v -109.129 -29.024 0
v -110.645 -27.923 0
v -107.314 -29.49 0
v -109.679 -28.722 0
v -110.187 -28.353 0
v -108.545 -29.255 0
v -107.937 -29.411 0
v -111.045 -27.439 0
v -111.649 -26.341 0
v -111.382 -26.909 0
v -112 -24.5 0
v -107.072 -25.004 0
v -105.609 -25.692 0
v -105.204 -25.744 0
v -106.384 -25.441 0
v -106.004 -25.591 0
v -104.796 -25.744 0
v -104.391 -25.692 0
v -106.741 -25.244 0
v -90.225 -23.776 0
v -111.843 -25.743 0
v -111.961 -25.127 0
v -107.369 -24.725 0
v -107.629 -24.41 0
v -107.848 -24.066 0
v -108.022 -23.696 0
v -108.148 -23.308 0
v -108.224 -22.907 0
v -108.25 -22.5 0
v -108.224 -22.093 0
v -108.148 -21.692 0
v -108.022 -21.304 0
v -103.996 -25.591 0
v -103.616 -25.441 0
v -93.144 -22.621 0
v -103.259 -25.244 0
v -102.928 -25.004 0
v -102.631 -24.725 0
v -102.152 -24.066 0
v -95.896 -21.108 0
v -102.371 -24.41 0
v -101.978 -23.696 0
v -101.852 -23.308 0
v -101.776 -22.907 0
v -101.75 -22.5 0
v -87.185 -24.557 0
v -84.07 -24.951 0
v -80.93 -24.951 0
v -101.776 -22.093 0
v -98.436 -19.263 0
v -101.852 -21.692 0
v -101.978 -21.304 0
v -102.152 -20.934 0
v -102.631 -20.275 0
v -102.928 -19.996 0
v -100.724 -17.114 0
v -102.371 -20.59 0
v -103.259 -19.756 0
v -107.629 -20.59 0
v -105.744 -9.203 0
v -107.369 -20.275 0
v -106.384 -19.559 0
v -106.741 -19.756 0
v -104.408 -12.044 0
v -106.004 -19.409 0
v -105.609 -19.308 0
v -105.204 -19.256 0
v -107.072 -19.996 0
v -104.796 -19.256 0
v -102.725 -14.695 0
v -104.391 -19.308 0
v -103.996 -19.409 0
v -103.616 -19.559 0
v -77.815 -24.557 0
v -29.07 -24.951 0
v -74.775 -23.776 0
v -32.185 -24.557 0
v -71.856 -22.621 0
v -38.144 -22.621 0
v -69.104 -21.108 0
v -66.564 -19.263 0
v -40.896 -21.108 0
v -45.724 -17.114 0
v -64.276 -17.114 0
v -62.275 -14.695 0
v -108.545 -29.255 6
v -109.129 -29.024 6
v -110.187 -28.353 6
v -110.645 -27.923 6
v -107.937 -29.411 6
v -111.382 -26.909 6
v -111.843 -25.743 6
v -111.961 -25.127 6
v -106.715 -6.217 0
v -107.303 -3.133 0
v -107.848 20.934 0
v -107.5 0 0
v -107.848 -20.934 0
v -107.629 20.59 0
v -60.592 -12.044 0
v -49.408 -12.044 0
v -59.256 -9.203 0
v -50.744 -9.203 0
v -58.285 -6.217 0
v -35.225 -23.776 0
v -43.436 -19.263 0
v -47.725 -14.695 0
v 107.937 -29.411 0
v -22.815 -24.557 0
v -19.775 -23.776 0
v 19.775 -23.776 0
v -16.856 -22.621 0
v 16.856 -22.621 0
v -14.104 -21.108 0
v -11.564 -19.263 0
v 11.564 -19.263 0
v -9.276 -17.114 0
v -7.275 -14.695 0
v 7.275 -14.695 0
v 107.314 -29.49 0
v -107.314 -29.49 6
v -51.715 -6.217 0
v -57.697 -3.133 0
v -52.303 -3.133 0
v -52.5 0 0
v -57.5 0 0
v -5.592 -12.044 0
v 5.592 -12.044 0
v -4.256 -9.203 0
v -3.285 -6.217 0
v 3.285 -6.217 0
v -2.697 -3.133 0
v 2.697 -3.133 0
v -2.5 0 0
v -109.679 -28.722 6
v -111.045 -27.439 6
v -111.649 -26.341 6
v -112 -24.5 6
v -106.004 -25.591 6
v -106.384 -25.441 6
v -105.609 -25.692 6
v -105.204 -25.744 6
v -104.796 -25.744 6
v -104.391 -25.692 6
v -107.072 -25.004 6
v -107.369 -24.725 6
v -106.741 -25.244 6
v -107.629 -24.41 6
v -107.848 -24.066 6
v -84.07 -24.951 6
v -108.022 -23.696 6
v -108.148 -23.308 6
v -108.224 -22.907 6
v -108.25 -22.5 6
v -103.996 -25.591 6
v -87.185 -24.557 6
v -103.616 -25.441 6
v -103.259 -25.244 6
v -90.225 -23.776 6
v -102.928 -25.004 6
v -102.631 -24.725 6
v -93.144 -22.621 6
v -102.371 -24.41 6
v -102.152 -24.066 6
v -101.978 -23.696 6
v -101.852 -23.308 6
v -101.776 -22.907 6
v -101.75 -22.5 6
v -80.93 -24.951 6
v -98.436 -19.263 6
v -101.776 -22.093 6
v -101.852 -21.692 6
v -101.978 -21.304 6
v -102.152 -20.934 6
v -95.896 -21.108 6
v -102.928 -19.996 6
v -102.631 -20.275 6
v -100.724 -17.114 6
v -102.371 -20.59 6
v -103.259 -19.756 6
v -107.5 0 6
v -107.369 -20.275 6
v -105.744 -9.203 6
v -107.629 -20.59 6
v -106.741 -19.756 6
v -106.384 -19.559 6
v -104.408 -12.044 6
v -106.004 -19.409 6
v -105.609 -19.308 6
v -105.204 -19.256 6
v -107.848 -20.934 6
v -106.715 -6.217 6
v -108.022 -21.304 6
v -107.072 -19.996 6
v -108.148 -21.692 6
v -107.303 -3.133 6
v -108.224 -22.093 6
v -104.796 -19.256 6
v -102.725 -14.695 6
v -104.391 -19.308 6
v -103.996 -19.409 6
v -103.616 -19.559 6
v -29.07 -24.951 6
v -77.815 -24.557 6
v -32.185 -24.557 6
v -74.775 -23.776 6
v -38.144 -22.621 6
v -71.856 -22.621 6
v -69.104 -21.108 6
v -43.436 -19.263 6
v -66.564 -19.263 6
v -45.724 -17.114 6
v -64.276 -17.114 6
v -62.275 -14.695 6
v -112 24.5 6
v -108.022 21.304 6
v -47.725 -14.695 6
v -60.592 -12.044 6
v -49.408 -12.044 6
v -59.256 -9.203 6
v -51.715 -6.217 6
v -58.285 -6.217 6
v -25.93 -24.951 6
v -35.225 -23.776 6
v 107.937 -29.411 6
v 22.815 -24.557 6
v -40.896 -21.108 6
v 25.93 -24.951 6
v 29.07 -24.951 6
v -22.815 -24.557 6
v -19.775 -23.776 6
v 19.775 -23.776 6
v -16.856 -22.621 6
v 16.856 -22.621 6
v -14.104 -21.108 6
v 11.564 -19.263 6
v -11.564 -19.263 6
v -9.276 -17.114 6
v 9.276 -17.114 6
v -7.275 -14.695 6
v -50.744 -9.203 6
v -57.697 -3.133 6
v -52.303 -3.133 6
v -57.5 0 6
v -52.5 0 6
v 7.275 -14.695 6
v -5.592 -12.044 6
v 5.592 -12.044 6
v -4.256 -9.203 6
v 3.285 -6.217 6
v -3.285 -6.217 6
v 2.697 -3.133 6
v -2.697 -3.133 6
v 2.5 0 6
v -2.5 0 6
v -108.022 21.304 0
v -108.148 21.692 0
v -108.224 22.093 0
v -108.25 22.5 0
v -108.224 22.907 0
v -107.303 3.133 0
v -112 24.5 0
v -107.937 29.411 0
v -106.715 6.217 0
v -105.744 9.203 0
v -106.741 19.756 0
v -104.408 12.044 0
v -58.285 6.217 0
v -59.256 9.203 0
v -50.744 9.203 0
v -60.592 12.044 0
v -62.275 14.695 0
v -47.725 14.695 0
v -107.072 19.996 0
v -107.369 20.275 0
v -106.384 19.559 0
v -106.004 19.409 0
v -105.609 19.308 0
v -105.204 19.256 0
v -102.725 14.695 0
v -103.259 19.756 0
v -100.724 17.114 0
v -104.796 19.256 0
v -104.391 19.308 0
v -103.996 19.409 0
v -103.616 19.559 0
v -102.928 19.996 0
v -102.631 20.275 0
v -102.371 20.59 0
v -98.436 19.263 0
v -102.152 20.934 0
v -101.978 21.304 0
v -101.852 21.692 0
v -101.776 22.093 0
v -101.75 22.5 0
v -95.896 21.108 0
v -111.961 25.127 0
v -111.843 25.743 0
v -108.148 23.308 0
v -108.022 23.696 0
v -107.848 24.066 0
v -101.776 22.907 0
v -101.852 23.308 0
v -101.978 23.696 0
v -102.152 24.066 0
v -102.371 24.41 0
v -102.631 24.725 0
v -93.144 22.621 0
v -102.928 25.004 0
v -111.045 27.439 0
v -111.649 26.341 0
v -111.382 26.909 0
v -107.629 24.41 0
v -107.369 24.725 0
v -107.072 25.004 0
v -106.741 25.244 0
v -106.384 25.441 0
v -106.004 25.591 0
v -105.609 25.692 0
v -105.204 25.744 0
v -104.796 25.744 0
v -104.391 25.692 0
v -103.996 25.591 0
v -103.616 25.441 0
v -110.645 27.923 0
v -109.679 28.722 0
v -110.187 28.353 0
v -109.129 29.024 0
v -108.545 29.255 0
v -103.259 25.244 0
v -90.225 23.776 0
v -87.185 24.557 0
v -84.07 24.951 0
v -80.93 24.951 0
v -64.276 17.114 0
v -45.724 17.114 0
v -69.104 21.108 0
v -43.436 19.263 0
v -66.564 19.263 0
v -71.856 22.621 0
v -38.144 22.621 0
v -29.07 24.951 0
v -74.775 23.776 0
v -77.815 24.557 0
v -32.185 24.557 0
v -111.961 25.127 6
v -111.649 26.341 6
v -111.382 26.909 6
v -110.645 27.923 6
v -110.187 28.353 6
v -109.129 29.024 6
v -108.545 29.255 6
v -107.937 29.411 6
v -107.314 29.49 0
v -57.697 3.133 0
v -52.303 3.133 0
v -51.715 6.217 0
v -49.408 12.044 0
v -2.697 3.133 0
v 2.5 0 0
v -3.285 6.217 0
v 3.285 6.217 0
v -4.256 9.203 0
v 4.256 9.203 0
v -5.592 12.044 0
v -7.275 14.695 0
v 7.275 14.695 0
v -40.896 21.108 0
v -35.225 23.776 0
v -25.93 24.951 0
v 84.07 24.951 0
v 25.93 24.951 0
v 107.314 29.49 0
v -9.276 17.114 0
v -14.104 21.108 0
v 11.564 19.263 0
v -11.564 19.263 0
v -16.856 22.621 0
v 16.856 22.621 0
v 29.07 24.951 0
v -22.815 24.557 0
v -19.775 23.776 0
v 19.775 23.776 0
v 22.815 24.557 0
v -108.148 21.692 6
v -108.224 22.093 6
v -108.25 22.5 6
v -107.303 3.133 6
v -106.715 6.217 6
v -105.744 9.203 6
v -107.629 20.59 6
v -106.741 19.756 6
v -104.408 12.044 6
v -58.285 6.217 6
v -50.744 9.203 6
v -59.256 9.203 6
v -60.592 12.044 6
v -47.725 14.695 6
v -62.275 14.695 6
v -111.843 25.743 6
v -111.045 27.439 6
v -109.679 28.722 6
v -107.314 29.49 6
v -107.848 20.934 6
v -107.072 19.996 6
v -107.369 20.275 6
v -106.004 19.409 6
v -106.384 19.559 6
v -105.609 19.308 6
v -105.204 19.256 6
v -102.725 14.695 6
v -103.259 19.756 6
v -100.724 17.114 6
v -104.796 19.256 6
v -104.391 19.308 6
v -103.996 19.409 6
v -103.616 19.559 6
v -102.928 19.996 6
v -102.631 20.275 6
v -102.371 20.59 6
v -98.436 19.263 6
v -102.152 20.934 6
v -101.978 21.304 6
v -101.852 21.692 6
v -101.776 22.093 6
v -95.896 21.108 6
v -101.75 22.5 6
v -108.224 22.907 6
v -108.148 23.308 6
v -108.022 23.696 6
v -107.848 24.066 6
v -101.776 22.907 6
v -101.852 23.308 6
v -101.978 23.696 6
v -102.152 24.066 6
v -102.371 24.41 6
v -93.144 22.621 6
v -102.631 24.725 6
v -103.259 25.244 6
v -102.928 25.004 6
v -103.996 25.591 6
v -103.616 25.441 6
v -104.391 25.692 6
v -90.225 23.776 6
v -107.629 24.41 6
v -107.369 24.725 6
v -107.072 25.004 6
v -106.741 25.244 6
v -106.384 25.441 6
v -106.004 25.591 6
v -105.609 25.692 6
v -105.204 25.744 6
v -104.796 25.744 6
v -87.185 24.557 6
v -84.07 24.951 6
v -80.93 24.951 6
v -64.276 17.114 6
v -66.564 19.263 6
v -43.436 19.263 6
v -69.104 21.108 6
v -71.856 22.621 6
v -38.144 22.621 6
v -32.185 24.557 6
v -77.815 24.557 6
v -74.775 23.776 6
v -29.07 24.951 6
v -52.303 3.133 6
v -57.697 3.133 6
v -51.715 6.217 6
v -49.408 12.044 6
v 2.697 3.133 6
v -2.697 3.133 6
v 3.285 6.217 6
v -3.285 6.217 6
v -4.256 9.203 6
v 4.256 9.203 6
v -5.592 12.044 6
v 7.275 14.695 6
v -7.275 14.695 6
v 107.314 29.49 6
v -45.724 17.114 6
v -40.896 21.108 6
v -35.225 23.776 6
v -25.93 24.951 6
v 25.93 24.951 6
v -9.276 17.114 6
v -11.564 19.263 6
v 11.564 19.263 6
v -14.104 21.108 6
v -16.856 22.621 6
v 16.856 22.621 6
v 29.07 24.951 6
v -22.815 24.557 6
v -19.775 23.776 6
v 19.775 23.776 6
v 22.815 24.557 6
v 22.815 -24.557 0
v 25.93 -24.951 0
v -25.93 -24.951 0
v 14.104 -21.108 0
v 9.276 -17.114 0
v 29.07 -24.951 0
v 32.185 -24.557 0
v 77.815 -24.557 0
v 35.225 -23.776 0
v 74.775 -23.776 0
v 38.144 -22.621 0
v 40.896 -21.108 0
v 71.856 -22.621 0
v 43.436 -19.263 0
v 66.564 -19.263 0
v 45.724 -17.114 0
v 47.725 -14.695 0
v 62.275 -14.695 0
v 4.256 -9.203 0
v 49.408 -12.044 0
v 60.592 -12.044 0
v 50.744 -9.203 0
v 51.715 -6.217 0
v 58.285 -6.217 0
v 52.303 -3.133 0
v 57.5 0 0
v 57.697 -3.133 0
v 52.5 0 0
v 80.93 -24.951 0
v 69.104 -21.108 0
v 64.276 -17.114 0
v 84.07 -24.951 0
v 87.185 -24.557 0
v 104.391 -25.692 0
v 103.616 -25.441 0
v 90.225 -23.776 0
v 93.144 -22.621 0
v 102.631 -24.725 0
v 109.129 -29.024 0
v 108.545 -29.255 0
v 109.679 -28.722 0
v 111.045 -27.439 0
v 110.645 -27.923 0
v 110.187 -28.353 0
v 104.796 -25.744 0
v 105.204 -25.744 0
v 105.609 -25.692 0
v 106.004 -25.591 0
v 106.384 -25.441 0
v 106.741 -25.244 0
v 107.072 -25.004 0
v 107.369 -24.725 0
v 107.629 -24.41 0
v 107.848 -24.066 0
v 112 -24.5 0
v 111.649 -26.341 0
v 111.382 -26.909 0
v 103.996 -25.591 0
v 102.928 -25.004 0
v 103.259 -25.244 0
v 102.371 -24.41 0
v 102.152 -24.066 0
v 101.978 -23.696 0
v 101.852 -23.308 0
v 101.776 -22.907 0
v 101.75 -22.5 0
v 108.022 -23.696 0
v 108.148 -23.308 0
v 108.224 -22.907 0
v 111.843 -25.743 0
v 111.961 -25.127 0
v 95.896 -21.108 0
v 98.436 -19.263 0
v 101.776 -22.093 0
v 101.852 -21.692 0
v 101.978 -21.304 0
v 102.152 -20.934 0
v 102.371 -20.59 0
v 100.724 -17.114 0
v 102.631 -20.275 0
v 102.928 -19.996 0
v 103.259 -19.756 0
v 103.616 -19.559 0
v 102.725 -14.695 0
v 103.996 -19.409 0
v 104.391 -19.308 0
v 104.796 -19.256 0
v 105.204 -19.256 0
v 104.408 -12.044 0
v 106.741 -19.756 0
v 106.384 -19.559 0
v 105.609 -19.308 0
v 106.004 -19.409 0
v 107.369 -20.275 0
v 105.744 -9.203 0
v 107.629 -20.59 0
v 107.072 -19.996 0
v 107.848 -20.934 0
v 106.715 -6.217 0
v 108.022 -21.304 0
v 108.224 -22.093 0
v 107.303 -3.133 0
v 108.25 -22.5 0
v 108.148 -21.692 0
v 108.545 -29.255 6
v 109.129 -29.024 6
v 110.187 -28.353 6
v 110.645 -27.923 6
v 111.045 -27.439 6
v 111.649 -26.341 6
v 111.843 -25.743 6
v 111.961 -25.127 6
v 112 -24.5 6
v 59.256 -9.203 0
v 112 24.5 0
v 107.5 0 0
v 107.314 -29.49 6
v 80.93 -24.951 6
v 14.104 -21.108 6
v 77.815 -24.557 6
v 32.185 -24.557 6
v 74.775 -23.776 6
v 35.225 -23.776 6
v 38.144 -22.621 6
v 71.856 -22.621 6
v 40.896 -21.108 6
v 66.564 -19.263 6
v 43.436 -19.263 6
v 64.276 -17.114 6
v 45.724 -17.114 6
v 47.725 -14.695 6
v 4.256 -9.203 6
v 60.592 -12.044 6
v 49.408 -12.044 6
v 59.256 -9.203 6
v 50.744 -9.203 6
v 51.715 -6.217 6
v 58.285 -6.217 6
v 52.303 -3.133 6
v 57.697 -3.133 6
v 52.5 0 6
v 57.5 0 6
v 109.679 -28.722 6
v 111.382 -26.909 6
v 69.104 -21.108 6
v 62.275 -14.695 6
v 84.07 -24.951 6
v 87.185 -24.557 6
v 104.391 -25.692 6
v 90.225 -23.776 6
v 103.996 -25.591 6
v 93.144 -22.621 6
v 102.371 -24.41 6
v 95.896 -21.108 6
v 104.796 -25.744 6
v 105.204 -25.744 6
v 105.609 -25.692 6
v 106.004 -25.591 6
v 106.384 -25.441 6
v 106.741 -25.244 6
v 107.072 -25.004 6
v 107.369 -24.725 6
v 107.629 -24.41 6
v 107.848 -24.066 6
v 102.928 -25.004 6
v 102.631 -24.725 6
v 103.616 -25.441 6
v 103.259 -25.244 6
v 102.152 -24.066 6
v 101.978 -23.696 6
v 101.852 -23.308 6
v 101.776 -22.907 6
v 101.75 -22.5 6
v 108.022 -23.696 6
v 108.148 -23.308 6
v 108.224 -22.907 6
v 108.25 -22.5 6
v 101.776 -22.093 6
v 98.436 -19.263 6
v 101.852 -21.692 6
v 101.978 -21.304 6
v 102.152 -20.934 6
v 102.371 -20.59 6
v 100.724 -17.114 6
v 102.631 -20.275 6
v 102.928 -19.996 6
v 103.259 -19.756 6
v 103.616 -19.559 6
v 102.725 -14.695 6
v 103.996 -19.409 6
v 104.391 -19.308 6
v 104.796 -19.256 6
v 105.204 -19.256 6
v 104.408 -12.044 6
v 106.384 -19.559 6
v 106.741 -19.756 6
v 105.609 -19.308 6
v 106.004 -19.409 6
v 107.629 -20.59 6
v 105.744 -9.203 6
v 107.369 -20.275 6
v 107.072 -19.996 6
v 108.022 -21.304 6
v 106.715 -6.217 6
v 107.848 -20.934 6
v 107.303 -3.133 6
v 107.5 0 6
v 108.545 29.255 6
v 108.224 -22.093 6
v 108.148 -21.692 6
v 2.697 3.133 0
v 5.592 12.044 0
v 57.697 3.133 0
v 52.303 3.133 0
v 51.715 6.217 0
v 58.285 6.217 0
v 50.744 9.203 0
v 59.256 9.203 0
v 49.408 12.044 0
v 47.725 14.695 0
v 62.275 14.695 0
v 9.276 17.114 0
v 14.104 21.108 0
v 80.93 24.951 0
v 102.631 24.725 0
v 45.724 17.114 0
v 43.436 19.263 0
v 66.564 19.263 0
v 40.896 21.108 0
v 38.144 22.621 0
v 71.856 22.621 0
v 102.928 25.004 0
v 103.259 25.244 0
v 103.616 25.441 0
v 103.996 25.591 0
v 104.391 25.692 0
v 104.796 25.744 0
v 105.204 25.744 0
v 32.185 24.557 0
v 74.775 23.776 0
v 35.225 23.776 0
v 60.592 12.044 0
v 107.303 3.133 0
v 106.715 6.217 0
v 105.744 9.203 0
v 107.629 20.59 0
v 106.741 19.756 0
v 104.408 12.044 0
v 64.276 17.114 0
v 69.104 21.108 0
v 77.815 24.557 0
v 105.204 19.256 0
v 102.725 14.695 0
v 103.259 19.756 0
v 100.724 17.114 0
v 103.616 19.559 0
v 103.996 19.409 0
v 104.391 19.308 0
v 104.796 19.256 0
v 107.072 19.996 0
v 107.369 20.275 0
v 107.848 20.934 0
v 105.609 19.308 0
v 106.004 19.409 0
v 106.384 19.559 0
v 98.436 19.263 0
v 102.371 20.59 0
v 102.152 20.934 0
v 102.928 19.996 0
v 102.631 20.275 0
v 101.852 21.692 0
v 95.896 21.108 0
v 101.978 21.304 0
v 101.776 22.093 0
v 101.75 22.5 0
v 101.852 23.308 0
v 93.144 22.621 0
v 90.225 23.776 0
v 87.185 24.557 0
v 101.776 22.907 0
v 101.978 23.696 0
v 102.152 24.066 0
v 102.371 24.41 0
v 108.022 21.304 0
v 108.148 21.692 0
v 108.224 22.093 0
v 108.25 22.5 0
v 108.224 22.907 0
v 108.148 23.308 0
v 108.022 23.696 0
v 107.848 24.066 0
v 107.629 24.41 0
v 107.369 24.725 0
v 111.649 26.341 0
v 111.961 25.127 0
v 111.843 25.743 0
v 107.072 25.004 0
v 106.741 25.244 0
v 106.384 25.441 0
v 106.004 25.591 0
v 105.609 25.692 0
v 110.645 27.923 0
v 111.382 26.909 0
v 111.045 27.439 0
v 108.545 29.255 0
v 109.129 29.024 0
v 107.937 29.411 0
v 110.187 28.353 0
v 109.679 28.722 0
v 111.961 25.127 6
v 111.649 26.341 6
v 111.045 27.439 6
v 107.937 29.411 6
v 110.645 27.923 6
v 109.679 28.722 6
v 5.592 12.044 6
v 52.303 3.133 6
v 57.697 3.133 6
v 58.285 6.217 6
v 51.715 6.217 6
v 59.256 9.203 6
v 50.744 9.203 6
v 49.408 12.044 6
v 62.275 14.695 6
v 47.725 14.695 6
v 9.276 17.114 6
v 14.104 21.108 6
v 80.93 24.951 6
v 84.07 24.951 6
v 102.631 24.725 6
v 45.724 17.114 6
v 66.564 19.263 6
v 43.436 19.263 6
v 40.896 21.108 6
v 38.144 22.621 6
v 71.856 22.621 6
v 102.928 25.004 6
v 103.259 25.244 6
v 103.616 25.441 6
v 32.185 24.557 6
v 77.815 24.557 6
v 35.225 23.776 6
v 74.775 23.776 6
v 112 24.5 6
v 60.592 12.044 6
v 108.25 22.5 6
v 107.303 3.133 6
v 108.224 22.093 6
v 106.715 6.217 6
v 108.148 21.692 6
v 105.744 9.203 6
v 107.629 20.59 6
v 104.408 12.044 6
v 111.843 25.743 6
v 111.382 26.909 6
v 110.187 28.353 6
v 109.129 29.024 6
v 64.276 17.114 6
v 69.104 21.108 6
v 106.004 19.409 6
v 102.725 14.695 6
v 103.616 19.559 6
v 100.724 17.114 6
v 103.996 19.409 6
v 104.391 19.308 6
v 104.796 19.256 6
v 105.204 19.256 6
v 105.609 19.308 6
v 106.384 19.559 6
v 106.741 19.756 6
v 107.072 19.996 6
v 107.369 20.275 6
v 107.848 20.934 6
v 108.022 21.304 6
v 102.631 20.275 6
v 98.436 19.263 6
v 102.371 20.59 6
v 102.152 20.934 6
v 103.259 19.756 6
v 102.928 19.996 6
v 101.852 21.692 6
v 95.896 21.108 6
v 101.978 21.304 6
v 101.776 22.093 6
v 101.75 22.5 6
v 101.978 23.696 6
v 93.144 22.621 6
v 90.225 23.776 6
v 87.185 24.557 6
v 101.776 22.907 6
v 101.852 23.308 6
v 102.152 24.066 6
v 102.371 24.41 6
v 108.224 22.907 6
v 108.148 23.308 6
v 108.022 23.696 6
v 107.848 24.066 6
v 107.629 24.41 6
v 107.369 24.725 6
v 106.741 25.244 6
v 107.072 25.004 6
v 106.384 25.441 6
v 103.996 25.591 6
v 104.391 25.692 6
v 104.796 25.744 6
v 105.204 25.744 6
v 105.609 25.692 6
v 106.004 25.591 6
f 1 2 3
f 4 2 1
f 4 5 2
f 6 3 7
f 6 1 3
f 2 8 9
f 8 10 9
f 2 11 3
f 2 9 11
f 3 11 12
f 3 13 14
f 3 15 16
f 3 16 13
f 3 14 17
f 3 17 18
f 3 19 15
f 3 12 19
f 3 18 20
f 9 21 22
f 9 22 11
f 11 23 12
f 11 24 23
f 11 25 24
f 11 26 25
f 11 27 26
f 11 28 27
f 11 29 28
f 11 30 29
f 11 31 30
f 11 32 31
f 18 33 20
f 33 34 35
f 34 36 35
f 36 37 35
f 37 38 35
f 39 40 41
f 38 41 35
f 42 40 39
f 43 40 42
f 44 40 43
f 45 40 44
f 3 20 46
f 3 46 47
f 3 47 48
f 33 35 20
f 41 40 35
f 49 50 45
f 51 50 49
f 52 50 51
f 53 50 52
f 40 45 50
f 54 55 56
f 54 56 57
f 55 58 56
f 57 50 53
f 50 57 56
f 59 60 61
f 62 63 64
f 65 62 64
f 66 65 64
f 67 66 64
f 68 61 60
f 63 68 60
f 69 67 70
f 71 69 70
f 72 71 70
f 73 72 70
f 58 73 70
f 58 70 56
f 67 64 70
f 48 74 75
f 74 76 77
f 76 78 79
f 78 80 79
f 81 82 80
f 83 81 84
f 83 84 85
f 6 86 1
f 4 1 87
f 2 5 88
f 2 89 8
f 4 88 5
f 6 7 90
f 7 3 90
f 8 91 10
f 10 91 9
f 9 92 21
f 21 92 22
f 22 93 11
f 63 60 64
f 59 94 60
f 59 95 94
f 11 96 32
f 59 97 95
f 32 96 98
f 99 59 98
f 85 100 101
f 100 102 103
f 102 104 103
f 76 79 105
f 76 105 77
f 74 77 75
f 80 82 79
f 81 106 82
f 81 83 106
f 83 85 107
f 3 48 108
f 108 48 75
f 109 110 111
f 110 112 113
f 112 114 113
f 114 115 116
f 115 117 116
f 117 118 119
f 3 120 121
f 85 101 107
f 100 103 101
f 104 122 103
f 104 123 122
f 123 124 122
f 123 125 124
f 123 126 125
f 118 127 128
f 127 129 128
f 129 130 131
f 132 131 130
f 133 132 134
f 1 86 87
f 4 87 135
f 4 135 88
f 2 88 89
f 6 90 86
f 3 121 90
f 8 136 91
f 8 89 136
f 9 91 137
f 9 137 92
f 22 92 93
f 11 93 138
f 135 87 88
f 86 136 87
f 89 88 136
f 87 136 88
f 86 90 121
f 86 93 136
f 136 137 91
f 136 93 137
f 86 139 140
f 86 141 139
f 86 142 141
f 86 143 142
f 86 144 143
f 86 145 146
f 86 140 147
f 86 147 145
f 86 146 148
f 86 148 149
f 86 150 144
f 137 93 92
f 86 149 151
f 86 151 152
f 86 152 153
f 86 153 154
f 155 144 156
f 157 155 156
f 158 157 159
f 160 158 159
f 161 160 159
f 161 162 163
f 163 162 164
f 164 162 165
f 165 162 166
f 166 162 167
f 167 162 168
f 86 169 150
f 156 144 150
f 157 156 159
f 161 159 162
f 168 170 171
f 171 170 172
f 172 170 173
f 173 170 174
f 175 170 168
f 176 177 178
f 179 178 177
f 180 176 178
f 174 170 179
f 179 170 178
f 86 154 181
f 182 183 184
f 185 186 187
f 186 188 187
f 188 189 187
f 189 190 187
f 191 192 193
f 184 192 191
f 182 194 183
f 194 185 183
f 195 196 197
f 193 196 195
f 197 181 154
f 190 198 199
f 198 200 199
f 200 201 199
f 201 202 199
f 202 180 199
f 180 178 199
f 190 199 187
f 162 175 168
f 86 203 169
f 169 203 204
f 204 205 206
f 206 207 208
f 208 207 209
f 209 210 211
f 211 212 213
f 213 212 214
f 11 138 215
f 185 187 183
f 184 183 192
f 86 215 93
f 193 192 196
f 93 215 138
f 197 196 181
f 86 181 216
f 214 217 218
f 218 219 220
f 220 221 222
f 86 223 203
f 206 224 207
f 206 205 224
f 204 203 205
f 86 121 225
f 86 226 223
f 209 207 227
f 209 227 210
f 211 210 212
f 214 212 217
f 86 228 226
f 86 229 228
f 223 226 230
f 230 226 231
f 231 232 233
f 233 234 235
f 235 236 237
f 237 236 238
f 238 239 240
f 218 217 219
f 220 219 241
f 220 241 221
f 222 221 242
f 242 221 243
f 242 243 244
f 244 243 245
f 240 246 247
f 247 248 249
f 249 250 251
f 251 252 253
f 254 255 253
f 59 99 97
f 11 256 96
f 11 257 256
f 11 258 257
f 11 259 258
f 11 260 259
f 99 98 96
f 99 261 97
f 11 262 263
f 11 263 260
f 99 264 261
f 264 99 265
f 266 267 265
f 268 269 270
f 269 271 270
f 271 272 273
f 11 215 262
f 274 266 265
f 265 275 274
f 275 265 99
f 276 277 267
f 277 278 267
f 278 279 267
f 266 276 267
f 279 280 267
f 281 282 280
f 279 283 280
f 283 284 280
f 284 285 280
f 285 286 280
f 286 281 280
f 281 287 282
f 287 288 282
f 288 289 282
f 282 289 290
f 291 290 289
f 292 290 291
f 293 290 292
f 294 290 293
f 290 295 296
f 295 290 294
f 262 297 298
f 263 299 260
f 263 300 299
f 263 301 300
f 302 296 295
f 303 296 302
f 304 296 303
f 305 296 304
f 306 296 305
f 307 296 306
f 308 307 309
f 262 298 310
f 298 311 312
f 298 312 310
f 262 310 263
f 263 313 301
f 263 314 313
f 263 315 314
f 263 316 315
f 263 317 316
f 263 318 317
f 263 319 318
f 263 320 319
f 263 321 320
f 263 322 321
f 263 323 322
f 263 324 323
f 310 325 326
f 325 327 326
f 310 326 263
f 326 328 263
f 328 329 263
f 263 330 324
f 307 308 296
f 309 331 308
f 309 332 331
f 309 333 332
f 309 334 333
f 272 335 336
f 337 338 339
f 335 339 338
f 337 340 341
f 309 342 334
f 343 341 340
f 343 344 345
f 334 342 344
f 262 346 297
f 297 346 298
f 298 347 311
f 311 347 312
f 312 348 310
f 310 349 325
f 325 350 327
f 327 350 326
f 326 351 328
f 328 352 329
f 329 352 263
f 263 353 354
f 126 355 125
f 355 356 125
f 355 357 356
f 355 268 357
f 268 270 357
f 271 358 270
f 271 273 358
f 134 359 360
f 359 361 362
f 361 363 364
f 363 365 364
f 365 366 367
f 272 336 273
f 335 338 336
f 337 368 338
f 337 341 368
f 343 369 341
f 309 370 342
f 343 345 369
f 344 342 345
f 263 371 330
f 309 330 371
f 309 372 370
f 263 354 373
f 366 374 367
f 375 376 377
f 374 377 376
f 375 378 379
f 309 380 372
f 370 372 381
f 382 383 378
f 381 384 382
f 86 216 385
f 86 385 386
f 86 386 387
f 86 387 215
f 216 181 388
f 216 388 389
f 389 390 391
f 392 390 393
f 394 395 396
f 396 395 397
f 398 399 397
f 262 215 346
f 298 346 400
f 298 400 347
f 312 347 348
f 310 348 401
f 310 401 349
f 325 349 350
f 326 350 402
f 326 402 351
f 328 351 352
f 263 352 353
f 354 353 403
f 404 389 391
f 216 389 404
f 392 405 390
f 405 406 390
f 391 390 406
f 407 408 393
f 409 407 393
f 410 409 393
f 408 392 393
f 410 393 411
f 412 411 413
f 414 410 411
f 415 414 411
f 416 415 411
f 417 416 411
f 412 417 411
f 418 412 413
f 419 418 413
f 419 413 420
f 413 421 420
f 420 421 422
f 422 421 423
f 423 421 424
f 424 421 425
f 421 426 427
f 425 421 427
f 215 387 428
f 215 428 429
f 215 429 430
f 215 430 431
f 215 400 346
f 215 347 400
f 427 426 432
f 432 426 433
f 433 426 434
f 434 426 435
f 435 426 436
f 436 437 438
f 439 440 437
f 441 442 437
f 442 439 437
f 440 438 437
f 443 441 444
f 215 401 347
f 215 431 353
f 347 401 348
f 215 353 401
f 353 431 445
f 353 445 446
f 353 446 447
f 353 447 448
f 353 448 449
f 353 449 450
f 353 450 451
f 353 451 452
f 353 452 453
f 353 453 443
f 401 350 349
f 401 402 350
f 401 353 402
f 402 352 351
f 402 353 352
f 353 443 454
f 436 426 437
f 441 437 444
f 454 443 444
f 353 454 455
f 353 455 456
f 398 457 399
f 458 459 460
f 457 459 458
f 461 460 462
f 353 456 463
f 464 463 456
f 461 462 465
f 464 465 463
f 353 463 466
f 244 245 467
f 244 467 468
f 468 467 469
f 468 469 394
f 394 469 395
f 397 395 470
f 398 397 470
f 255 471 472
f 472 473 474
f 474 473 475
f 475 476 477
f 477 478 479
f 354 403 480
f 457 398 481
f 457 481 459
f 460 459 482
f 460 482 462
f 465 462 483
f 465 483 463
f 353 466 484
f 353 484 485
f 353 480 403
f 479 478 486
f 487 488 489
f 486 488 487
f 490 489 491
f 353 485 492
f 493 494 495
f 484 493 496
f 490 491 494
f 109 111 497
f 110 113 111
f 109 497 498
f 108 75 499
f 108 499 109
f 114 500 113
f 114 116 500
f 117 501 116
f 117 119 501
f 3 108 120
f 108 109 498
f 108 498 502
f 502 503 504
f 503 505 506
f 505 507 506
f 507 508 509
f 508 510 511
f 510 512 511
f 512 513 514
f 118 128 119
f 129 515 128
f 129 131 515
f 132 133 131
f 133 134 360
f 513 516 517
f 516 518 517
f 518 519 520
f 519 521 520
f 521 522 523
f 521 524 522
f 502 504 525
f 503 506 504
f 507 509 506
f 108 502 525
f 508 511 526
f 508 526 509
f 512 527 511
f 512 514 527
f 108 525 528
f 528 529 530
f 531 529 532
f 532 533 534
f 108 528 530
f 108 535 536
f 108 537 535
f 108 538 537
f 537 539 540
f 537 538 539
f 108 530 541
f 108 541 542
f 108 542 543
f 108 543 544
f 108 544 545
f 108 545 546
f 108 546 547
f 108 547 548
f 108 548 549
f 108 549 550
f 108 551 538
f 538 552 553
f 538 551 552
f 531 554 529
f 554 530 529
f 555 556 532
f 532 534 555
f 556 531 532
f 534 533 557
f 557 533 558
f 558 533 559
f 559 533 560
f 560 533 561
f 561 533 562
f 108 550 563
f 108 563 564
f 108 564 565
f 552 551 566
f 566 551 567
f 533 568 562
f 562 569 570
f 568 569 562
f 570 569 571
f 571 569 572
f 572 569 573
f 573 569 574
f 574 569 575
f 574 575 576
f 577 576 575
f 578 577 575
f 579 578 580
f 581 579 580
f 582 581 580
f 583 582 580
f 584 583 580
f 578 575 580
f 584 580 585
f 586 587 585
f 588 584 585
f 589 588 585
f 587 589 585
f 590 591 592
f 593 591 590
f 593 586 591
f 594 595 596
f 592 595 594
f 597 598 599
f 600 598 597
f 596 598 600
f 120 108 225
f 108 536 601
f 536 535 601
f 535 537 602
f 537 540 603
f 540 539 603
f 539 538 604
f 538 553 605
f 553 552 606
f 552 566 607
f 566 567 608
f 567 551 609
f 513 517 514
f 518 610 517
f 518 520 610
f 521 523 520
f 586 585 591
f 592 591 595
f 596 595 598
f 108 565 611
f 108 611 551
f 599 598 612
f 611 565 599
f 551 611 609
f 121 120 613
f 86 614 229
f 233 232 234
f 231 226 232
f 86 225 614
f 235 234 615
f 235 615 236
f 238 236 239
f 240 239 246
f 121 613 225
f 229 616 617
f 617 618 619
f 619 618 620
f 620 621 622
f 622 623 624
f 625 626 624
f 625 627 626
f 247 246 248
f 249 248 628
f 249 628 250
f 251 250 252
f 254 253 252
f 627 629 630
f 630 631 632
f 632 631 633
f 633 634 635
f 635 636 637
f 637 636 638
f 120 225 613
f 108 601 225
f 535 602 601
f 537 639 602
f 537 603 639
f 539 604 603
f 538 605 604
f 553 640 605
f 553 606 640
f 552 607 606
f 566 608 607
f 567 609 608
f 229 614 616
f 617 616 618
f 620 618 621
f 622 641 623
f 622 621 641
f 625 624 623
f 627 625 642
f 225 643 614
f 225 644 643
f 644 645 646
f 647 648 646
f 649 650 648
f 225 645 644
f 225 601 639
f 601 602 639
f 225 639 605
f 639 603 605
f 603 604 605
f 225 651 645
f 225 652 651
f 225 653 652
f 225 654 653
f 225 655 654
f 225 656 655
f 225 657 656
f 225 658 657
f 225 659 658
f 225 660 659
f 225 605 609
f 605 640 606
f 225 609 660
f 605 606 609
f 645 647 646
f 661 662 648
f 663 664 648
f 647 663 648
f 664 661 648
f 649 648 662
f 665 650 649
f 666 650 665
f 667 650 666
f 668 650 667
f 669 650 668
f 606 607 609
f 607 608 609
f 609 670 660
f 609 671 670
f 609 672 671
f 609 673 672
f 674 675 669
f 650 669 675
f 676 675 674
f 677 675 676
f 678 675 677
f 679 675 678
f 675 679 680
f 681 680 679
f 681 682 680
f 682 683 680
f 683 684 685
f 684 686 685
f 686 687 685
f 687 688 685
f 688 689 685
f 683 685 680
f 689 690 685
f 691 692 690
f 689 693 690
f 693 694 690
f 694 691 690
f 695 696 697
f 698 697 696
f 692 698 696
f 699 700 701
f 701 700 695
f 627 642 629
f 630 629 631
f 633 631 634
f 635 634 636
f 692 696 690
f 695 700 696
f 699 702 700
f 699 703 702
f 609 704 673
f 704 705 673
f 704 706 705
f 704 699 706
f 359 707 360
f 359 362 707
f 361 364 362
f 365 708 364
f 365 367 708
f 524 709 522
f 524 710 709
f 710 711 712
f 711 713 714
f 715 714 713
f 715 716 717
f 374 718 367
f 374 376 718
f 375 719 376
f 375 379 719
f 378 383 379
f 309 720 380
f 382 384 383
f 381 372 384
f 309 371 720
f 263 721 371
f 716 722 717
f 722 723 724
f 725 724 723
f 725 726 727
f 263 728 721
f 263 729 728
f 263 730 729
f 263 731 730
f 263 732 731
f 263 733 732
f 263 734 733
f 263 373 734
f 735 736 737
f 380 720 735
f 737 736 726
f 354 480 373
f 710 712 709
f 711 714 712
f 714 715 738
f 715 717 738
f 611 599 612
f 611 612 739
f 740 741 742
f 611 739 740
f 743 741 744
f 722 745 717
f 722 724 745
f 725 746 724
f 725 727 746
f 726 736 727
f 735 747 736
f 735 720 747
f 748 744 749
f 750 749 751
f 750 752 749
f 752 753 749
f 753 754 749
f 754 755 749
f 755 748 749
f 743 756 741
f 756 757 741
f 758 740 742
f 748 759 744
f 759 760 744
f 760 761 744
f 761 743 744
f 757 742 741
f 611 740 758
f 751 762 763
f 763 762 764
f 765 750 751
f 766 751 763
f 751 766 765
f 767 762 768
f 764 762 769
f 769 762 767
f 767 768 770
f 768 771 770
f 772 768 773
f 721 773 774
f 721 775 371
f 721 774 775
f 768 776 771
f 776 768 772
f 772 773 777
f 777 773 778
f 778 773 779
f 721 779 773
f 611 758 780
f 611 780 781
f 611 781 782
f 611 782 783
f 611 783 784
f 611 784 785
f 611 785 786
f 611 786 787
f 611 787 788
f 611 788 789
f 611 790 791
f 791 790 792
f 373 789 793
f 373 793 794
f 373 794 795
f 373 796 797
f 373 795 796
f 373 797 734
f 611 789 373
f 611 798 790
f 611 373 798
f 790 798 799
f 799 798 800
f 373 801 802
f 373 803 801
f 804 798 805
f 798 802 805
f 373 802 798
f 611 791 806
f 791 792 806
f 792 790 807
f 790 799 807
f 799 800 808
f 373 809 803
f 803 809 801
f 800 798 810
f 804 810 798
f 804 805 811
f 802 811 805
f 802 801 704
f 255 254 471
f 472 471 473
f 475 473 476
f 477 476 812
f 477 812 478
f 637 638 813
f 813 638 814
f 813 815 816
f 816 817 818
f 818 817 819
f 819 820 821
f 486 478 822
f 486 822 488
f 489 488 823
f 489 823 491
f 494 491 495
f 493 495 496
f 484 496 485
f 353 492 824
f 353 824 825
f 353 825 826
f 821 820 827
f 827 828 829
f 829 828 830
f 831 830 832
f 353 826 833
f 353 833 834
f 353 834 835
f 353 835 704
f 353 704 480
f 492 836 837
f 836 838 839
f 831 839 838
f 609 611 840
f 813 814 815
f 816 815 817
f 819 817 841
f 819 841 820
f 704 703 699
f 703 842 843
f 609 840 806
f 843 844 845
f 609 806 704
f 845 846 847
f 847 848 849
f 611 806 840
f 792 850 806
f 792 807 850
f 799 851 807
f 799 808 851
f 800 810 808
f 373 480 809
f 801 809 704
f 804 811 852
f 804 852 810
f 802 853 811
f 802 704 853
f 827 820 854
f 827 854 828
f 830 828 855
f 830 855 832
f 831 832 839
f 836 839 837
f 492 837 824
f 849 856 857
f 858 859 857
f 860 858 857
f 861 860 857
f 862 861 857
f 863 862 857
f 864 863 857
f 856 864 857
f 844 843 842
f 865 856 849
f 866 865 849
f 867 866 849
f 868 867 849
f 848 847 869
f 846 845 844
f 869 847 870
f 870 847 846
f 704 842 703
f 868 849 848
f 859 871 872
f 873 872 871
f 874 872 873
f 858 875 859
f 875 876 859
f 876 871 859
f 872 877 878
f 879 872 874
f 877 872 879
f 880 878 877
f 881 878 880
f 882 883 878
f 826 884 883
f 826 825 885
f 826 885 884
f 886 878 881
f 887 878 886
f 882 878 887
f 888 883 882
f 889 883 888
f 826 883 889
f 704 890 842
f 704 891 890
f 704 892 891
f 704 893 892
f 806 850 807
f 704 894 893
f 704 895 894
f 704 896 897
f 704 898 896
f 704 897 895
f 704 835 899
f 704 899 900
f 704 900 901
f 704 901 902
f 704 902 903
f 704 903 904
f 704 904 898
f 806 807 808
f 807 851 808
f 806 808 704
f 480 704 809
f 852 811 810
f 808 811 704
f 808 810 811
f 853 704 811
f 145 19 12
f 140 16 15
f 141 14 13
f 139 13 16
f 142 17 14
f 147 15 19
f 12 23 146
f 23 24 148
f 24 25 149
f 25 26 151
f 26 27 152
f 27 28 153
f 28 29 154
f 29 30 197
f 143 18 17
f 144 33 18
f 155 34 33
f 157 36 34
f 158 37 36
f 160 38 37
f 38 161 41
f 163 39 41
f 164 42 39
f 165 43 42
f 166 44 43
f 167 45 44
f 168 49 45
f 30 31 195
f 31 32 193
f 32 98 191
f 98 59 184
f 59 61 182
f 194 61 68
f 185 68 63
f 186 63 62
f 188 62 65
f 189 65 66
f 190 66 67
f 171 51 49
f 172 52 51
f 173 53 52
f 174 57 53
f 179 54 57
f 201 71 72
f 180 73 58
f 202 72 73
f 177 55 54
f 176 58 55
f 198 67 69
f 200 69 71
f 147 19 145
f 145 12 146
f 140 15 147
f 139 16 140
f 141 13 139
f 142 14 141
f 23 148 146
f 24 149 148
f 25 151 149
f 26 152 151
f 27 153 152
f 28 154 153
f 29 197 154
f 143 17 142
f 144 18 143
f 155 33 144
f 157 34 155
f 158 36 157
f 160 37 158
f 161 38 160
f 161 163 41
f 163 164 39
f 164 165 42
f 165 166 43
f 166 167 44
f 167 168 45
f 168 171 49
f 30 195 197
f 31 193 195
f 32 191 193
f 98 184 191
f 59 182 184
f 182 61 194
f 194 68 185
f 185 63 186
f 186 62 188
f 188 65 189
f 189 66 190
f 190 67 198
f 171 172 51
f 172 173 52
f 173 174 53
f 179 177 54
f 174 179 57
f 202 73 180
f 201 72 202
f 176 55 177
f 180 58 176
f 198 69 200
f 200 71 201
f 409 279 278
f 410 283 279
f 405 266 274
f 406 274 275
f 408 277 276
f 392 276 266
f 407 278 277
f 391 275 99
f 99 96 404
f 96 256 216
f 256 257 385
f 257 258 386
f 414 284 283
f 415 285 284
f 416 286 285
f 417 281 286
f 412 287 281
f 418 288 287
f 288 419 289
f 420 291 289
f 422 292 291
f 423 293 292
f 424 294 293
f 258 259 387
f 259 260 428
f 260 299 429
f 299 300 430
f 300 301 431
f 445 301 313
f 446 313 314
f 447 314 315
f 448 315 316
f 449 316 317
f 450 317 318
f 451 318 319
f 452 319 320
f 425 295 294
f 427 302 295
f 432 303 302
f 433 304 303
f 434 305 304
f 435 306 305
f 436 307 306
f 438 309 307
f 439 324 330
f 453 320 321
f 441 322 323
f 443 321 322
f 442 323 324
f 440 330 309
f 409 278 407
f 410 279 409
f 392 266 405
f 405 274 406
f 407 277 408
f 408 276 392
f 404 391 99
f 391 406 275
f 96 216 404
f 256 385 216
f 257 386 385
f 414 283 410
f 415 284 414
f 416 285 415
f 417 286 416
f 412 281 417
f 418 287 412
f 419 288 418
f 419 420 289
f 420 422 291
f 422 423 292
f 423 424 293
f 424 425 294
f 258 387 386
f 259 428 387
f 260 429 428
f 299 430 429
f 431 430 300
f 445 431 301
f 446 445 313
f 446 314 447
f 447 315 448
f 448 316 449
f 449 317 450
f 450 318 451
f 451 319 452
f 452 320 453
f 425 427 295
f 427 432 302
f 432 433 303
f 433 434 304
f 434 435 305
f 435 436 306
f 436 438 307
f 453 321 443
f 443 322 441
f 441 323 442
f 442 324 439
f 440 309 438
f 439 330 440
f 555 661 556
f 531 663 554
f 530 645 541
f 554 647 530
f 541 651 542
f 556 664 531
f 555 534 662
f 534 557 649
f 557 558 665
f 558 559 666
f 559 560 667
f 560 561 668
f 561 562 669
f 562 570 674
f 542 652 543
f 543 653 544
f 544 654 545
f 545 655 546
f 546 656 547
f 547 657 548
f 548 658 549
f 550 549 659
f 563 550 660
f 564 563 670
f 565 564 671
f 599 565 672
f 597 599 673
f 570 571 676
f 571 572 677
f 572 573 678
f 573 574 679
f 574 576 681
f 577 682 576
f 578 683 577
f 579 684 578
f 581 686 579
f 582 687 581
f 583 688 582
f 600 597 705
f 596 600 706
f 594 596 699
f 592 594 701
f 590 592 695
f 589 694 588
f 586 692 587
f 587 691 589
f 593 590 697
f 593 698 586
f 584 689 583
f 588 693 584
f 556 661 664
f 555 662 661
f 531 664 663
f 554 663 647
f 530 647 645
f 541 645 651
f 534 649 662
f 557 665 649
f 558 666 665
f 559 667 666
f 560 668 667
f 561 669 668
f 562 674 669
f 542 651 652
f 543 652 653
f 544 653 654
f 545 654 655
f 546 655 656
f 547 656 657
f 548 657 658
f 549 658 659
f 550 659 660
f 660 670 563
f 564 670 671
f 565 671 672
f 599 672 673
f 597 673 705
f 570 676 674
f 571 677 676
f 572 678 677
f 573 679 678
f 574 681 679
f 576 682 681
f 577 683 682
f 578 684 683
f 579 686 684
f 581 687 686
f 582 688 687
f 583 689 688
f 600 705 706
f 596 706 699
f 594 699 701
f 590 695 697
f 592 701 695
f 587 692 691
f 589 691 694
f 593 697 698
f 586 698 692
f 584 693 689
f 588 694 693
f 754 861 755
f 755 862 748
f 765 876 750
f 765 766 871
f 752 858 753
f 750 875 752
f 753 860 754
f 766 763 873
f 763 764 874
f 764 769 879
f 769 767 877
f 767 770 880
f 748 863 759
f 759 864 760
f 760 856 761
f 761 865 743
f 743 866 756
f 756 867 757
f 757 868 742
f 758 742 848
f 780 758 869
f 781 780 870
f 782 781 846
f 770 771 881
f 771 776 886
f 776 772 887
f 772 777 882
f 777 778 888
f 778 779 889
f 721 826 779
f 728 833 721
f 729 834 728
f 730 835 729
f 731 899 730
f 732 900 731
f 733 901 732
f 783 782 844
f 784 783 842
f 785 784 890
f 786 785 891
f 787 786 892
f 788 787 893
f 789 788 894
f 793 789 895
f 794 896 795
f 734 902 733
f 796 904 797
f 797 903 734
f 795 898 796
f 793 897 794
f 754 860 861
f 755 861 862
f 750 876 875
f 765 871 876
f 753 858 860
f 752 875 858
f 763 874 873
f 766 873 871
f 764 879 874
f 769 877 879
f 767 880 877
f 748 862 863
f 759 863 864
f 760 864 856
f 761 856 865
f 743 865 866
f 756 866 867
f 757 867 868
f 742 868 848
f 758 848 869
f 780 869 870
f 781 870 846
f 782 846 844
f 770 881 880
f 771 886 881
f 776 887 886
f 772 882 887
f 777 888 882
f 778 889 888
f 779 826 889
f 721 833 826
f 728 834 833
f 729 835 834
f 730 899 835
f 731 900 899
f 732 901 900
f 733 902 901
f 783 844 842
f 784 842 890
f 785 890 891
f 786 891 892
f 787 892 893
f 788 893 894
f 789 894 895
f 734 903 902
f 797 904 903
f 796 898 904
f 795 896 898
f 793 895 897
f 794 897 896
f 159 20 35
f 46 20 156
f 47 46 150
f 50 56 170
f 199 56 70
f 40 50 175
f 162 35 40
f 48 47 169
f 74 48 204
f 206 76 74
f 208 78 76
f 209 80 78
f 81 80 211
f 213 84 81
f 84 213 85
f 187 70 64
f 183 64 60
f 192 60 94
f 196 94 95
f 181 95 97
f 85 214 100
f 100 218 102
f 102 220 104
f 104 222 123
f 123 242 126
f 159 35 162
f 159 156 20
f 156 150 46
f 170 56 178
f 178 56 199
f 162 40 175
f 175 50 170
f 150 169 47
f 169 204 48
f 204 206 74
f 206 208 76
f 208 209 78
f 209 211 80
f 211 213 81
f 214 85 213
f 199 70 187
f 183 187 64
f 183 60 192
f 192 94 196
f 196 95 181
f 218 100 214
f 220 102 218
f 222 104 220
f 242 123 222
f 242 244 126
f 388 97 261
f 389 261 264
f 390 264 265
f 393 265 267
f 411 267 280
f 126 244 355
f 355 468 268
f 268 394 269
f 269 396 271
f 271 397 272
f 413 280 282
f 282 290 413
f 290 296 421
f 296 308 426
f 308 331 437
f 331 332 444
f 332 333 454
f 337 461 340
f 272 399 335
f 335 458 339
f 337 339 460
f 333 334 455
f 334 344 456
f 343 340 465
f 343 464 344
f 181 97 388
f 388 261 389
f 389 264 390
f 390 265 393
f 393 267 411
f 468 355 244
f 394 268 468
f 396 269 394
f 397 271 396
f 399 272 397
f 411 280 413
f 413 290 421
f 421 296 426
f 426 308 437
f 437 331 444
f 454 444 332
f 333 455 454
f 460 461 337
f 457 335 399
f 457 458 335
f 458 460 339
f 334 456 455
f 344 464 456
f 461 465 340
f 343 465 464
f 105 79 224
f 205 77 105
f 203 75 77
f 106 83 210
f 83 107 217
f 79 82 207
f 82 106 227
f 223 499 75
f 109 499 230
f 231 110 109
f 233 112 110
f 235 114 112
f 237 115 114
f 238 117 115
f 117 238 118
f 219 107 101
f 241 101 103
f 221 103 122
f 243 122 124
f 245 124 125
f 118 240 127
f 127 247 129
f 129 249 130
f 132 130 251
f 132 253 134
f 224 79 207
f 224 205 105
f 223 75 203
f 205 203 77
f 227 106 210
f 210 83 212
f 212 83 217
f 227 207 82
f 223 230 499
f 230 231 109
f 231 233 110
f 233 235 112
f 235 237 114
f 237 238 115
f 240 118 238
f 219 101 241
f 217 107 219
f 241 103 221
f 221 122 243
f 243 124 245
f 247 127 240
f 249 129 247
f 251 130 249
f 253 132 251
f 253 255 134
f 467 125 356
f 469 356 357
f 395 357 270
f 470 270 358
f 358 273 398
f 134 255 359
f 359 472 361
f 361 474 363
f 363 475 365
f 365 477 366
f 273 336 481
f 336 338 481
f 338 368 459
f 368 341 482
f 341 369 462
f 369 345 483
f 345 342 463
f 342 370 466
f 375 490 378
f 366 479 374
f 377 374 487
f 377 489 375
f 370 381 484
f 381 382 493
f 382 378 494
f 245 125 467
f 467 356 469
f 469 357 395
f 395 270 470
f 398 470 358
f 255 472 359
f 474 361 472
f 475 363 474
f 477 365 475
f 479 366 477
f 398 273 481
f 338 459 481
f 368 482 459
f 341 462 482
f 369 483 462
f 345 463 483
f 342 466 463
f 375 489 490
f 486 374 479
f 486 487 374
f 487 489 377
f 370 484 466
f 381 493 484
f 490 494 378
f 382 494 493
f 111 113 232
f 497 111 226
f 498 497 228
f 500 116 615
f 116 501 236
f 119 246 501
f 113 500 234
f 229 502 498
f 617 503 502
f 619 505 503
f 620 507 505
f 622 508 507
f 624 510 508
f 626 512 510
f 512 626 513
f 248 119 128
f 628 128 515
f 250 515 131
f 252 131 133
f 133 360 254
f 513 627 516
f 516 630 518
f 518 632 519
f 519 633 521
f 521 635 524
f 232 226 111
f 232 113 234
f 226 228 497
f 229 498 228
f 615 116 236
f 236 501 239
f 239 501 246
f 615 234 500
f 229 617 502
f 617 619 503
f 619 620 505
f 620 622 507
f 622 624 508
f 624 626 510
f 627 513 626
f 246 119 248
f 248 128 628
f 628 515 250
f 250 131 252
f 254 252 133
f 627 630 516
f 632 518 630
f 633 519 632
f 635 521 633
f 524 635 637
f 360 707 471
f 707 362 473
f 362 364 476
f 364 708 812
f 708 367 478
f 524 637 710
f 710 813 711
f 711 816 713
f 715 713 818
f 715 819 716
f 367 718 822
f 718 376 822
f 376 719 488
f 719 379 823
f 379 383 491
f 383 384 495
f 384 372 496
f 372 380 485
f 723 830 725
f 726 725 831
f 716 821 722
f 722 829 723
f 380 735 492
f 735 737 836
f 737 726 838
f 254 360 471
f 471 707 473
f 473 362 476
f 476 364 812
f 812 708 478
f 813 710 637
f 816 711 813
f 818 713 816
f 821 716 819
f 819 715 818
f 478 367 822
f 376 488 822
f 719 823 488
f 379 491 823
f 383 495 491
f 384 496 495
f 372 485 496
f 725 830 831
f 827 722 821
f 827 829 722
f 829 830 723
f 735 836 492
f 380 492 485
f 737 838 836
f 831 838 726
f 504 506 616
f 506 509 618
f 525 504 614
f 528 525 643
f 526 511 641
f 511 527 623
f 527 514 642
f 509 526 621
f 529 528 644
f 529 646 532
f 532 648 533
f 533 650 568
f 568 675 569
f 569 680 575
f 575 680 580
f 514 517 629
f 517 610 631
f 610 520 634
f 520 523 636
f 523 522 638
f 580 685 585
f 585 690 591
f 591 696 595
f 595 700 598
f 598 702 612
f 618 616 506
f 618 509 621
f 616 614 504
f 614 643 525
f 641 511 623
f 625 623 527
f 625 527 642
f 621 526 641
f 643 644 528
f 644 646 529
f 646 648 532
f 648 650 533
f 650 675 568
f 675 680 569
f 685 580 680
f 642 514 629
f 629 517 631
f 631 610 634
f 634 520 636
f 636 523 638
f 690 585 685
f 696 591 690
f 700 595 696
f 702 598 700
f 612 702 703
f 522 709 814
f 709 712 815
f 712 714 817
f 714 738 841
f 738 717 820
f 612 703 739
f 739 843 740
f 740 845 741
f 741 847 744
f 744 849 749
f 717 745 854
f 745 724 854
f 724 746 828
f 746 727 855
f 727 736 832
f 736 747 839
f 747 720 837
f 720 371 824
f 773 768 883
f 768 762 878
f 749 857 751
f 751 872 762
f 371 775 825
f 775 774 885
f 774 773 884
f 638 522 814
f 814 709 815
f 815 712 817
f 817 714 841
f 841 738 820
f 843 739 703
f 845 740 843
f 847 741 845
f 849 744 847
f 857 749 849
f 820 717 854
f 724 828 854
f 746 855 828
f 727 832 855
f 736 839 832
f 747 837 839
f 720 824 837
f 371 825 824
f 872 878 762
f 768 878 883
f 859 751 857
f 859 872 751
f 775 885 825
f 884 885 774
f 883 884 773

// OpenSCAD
$fn = 50;

difference() {
	union() {
		hull() {
			translate(v = [-107.0, 24.5, 0]) {
				cylinder(h = 6, r = 5);
			}
			translate(v = [107.0, 24.5, 0]) {
				cylinder(h = 6, r = 5);
			}
			translate(v = [-107.0, -24.5, 0]) {
				cylinder(h = 6, r = 5);
			}
			translate(v = [107.0, -24.5, 0]) {
				cylinder(h = 6, r = 5);
			}
		}
	}
	union() {
		translate(v = [-105.0, -22.5, -100.0]) {
			cylinder(h = 200, r = 3.25);
		}
		translate(v = [-105.0, 22.5, -100.0]) {
			cylinder(h = 200, r = 3.25);
		}
		translate(v = [105.0, -22.5, -100.0]) {
			cylinder(h = 200, r = 3.25);
		}
		translate(v = [105.0, 22.5, -100.0]) {
			cylinder(h = 200, r = 3.25);
		}
		translate(v = [-105.0, -22.5, -100.0]) {
			cylinder(h = 200, r = 1.8);
		}
		translate(v = [-105.0, 22.5, -100.0]) {
			cylinder(h = 200, r = 1.8);
		}
		translate(v = [105.0, -22.5, -100.0]) {
			cylinder(h = 200, r = 1.8);
		}
		translate(v = [105.0, 22.5, -100.0]) {
			cylinder(h = 200, r = 1.8);
		}
		translate(v = [-82.5, 0, 0.0]) {
			cylinder(h = 6, r = 25.0);
		}
		translate(v = [-27.5, 0, 0.0]) {
			cylinder(h = 6, r = 25.0);
		}
		translate(v = [27.5, 0, 0.0]) {
			cylinder(h = 6, r = 25.0);
		}
		translate(v = [82.5, 0, 0.0]) {
			cylinder(h = 6, r = 25.0);
		}
	}
}
